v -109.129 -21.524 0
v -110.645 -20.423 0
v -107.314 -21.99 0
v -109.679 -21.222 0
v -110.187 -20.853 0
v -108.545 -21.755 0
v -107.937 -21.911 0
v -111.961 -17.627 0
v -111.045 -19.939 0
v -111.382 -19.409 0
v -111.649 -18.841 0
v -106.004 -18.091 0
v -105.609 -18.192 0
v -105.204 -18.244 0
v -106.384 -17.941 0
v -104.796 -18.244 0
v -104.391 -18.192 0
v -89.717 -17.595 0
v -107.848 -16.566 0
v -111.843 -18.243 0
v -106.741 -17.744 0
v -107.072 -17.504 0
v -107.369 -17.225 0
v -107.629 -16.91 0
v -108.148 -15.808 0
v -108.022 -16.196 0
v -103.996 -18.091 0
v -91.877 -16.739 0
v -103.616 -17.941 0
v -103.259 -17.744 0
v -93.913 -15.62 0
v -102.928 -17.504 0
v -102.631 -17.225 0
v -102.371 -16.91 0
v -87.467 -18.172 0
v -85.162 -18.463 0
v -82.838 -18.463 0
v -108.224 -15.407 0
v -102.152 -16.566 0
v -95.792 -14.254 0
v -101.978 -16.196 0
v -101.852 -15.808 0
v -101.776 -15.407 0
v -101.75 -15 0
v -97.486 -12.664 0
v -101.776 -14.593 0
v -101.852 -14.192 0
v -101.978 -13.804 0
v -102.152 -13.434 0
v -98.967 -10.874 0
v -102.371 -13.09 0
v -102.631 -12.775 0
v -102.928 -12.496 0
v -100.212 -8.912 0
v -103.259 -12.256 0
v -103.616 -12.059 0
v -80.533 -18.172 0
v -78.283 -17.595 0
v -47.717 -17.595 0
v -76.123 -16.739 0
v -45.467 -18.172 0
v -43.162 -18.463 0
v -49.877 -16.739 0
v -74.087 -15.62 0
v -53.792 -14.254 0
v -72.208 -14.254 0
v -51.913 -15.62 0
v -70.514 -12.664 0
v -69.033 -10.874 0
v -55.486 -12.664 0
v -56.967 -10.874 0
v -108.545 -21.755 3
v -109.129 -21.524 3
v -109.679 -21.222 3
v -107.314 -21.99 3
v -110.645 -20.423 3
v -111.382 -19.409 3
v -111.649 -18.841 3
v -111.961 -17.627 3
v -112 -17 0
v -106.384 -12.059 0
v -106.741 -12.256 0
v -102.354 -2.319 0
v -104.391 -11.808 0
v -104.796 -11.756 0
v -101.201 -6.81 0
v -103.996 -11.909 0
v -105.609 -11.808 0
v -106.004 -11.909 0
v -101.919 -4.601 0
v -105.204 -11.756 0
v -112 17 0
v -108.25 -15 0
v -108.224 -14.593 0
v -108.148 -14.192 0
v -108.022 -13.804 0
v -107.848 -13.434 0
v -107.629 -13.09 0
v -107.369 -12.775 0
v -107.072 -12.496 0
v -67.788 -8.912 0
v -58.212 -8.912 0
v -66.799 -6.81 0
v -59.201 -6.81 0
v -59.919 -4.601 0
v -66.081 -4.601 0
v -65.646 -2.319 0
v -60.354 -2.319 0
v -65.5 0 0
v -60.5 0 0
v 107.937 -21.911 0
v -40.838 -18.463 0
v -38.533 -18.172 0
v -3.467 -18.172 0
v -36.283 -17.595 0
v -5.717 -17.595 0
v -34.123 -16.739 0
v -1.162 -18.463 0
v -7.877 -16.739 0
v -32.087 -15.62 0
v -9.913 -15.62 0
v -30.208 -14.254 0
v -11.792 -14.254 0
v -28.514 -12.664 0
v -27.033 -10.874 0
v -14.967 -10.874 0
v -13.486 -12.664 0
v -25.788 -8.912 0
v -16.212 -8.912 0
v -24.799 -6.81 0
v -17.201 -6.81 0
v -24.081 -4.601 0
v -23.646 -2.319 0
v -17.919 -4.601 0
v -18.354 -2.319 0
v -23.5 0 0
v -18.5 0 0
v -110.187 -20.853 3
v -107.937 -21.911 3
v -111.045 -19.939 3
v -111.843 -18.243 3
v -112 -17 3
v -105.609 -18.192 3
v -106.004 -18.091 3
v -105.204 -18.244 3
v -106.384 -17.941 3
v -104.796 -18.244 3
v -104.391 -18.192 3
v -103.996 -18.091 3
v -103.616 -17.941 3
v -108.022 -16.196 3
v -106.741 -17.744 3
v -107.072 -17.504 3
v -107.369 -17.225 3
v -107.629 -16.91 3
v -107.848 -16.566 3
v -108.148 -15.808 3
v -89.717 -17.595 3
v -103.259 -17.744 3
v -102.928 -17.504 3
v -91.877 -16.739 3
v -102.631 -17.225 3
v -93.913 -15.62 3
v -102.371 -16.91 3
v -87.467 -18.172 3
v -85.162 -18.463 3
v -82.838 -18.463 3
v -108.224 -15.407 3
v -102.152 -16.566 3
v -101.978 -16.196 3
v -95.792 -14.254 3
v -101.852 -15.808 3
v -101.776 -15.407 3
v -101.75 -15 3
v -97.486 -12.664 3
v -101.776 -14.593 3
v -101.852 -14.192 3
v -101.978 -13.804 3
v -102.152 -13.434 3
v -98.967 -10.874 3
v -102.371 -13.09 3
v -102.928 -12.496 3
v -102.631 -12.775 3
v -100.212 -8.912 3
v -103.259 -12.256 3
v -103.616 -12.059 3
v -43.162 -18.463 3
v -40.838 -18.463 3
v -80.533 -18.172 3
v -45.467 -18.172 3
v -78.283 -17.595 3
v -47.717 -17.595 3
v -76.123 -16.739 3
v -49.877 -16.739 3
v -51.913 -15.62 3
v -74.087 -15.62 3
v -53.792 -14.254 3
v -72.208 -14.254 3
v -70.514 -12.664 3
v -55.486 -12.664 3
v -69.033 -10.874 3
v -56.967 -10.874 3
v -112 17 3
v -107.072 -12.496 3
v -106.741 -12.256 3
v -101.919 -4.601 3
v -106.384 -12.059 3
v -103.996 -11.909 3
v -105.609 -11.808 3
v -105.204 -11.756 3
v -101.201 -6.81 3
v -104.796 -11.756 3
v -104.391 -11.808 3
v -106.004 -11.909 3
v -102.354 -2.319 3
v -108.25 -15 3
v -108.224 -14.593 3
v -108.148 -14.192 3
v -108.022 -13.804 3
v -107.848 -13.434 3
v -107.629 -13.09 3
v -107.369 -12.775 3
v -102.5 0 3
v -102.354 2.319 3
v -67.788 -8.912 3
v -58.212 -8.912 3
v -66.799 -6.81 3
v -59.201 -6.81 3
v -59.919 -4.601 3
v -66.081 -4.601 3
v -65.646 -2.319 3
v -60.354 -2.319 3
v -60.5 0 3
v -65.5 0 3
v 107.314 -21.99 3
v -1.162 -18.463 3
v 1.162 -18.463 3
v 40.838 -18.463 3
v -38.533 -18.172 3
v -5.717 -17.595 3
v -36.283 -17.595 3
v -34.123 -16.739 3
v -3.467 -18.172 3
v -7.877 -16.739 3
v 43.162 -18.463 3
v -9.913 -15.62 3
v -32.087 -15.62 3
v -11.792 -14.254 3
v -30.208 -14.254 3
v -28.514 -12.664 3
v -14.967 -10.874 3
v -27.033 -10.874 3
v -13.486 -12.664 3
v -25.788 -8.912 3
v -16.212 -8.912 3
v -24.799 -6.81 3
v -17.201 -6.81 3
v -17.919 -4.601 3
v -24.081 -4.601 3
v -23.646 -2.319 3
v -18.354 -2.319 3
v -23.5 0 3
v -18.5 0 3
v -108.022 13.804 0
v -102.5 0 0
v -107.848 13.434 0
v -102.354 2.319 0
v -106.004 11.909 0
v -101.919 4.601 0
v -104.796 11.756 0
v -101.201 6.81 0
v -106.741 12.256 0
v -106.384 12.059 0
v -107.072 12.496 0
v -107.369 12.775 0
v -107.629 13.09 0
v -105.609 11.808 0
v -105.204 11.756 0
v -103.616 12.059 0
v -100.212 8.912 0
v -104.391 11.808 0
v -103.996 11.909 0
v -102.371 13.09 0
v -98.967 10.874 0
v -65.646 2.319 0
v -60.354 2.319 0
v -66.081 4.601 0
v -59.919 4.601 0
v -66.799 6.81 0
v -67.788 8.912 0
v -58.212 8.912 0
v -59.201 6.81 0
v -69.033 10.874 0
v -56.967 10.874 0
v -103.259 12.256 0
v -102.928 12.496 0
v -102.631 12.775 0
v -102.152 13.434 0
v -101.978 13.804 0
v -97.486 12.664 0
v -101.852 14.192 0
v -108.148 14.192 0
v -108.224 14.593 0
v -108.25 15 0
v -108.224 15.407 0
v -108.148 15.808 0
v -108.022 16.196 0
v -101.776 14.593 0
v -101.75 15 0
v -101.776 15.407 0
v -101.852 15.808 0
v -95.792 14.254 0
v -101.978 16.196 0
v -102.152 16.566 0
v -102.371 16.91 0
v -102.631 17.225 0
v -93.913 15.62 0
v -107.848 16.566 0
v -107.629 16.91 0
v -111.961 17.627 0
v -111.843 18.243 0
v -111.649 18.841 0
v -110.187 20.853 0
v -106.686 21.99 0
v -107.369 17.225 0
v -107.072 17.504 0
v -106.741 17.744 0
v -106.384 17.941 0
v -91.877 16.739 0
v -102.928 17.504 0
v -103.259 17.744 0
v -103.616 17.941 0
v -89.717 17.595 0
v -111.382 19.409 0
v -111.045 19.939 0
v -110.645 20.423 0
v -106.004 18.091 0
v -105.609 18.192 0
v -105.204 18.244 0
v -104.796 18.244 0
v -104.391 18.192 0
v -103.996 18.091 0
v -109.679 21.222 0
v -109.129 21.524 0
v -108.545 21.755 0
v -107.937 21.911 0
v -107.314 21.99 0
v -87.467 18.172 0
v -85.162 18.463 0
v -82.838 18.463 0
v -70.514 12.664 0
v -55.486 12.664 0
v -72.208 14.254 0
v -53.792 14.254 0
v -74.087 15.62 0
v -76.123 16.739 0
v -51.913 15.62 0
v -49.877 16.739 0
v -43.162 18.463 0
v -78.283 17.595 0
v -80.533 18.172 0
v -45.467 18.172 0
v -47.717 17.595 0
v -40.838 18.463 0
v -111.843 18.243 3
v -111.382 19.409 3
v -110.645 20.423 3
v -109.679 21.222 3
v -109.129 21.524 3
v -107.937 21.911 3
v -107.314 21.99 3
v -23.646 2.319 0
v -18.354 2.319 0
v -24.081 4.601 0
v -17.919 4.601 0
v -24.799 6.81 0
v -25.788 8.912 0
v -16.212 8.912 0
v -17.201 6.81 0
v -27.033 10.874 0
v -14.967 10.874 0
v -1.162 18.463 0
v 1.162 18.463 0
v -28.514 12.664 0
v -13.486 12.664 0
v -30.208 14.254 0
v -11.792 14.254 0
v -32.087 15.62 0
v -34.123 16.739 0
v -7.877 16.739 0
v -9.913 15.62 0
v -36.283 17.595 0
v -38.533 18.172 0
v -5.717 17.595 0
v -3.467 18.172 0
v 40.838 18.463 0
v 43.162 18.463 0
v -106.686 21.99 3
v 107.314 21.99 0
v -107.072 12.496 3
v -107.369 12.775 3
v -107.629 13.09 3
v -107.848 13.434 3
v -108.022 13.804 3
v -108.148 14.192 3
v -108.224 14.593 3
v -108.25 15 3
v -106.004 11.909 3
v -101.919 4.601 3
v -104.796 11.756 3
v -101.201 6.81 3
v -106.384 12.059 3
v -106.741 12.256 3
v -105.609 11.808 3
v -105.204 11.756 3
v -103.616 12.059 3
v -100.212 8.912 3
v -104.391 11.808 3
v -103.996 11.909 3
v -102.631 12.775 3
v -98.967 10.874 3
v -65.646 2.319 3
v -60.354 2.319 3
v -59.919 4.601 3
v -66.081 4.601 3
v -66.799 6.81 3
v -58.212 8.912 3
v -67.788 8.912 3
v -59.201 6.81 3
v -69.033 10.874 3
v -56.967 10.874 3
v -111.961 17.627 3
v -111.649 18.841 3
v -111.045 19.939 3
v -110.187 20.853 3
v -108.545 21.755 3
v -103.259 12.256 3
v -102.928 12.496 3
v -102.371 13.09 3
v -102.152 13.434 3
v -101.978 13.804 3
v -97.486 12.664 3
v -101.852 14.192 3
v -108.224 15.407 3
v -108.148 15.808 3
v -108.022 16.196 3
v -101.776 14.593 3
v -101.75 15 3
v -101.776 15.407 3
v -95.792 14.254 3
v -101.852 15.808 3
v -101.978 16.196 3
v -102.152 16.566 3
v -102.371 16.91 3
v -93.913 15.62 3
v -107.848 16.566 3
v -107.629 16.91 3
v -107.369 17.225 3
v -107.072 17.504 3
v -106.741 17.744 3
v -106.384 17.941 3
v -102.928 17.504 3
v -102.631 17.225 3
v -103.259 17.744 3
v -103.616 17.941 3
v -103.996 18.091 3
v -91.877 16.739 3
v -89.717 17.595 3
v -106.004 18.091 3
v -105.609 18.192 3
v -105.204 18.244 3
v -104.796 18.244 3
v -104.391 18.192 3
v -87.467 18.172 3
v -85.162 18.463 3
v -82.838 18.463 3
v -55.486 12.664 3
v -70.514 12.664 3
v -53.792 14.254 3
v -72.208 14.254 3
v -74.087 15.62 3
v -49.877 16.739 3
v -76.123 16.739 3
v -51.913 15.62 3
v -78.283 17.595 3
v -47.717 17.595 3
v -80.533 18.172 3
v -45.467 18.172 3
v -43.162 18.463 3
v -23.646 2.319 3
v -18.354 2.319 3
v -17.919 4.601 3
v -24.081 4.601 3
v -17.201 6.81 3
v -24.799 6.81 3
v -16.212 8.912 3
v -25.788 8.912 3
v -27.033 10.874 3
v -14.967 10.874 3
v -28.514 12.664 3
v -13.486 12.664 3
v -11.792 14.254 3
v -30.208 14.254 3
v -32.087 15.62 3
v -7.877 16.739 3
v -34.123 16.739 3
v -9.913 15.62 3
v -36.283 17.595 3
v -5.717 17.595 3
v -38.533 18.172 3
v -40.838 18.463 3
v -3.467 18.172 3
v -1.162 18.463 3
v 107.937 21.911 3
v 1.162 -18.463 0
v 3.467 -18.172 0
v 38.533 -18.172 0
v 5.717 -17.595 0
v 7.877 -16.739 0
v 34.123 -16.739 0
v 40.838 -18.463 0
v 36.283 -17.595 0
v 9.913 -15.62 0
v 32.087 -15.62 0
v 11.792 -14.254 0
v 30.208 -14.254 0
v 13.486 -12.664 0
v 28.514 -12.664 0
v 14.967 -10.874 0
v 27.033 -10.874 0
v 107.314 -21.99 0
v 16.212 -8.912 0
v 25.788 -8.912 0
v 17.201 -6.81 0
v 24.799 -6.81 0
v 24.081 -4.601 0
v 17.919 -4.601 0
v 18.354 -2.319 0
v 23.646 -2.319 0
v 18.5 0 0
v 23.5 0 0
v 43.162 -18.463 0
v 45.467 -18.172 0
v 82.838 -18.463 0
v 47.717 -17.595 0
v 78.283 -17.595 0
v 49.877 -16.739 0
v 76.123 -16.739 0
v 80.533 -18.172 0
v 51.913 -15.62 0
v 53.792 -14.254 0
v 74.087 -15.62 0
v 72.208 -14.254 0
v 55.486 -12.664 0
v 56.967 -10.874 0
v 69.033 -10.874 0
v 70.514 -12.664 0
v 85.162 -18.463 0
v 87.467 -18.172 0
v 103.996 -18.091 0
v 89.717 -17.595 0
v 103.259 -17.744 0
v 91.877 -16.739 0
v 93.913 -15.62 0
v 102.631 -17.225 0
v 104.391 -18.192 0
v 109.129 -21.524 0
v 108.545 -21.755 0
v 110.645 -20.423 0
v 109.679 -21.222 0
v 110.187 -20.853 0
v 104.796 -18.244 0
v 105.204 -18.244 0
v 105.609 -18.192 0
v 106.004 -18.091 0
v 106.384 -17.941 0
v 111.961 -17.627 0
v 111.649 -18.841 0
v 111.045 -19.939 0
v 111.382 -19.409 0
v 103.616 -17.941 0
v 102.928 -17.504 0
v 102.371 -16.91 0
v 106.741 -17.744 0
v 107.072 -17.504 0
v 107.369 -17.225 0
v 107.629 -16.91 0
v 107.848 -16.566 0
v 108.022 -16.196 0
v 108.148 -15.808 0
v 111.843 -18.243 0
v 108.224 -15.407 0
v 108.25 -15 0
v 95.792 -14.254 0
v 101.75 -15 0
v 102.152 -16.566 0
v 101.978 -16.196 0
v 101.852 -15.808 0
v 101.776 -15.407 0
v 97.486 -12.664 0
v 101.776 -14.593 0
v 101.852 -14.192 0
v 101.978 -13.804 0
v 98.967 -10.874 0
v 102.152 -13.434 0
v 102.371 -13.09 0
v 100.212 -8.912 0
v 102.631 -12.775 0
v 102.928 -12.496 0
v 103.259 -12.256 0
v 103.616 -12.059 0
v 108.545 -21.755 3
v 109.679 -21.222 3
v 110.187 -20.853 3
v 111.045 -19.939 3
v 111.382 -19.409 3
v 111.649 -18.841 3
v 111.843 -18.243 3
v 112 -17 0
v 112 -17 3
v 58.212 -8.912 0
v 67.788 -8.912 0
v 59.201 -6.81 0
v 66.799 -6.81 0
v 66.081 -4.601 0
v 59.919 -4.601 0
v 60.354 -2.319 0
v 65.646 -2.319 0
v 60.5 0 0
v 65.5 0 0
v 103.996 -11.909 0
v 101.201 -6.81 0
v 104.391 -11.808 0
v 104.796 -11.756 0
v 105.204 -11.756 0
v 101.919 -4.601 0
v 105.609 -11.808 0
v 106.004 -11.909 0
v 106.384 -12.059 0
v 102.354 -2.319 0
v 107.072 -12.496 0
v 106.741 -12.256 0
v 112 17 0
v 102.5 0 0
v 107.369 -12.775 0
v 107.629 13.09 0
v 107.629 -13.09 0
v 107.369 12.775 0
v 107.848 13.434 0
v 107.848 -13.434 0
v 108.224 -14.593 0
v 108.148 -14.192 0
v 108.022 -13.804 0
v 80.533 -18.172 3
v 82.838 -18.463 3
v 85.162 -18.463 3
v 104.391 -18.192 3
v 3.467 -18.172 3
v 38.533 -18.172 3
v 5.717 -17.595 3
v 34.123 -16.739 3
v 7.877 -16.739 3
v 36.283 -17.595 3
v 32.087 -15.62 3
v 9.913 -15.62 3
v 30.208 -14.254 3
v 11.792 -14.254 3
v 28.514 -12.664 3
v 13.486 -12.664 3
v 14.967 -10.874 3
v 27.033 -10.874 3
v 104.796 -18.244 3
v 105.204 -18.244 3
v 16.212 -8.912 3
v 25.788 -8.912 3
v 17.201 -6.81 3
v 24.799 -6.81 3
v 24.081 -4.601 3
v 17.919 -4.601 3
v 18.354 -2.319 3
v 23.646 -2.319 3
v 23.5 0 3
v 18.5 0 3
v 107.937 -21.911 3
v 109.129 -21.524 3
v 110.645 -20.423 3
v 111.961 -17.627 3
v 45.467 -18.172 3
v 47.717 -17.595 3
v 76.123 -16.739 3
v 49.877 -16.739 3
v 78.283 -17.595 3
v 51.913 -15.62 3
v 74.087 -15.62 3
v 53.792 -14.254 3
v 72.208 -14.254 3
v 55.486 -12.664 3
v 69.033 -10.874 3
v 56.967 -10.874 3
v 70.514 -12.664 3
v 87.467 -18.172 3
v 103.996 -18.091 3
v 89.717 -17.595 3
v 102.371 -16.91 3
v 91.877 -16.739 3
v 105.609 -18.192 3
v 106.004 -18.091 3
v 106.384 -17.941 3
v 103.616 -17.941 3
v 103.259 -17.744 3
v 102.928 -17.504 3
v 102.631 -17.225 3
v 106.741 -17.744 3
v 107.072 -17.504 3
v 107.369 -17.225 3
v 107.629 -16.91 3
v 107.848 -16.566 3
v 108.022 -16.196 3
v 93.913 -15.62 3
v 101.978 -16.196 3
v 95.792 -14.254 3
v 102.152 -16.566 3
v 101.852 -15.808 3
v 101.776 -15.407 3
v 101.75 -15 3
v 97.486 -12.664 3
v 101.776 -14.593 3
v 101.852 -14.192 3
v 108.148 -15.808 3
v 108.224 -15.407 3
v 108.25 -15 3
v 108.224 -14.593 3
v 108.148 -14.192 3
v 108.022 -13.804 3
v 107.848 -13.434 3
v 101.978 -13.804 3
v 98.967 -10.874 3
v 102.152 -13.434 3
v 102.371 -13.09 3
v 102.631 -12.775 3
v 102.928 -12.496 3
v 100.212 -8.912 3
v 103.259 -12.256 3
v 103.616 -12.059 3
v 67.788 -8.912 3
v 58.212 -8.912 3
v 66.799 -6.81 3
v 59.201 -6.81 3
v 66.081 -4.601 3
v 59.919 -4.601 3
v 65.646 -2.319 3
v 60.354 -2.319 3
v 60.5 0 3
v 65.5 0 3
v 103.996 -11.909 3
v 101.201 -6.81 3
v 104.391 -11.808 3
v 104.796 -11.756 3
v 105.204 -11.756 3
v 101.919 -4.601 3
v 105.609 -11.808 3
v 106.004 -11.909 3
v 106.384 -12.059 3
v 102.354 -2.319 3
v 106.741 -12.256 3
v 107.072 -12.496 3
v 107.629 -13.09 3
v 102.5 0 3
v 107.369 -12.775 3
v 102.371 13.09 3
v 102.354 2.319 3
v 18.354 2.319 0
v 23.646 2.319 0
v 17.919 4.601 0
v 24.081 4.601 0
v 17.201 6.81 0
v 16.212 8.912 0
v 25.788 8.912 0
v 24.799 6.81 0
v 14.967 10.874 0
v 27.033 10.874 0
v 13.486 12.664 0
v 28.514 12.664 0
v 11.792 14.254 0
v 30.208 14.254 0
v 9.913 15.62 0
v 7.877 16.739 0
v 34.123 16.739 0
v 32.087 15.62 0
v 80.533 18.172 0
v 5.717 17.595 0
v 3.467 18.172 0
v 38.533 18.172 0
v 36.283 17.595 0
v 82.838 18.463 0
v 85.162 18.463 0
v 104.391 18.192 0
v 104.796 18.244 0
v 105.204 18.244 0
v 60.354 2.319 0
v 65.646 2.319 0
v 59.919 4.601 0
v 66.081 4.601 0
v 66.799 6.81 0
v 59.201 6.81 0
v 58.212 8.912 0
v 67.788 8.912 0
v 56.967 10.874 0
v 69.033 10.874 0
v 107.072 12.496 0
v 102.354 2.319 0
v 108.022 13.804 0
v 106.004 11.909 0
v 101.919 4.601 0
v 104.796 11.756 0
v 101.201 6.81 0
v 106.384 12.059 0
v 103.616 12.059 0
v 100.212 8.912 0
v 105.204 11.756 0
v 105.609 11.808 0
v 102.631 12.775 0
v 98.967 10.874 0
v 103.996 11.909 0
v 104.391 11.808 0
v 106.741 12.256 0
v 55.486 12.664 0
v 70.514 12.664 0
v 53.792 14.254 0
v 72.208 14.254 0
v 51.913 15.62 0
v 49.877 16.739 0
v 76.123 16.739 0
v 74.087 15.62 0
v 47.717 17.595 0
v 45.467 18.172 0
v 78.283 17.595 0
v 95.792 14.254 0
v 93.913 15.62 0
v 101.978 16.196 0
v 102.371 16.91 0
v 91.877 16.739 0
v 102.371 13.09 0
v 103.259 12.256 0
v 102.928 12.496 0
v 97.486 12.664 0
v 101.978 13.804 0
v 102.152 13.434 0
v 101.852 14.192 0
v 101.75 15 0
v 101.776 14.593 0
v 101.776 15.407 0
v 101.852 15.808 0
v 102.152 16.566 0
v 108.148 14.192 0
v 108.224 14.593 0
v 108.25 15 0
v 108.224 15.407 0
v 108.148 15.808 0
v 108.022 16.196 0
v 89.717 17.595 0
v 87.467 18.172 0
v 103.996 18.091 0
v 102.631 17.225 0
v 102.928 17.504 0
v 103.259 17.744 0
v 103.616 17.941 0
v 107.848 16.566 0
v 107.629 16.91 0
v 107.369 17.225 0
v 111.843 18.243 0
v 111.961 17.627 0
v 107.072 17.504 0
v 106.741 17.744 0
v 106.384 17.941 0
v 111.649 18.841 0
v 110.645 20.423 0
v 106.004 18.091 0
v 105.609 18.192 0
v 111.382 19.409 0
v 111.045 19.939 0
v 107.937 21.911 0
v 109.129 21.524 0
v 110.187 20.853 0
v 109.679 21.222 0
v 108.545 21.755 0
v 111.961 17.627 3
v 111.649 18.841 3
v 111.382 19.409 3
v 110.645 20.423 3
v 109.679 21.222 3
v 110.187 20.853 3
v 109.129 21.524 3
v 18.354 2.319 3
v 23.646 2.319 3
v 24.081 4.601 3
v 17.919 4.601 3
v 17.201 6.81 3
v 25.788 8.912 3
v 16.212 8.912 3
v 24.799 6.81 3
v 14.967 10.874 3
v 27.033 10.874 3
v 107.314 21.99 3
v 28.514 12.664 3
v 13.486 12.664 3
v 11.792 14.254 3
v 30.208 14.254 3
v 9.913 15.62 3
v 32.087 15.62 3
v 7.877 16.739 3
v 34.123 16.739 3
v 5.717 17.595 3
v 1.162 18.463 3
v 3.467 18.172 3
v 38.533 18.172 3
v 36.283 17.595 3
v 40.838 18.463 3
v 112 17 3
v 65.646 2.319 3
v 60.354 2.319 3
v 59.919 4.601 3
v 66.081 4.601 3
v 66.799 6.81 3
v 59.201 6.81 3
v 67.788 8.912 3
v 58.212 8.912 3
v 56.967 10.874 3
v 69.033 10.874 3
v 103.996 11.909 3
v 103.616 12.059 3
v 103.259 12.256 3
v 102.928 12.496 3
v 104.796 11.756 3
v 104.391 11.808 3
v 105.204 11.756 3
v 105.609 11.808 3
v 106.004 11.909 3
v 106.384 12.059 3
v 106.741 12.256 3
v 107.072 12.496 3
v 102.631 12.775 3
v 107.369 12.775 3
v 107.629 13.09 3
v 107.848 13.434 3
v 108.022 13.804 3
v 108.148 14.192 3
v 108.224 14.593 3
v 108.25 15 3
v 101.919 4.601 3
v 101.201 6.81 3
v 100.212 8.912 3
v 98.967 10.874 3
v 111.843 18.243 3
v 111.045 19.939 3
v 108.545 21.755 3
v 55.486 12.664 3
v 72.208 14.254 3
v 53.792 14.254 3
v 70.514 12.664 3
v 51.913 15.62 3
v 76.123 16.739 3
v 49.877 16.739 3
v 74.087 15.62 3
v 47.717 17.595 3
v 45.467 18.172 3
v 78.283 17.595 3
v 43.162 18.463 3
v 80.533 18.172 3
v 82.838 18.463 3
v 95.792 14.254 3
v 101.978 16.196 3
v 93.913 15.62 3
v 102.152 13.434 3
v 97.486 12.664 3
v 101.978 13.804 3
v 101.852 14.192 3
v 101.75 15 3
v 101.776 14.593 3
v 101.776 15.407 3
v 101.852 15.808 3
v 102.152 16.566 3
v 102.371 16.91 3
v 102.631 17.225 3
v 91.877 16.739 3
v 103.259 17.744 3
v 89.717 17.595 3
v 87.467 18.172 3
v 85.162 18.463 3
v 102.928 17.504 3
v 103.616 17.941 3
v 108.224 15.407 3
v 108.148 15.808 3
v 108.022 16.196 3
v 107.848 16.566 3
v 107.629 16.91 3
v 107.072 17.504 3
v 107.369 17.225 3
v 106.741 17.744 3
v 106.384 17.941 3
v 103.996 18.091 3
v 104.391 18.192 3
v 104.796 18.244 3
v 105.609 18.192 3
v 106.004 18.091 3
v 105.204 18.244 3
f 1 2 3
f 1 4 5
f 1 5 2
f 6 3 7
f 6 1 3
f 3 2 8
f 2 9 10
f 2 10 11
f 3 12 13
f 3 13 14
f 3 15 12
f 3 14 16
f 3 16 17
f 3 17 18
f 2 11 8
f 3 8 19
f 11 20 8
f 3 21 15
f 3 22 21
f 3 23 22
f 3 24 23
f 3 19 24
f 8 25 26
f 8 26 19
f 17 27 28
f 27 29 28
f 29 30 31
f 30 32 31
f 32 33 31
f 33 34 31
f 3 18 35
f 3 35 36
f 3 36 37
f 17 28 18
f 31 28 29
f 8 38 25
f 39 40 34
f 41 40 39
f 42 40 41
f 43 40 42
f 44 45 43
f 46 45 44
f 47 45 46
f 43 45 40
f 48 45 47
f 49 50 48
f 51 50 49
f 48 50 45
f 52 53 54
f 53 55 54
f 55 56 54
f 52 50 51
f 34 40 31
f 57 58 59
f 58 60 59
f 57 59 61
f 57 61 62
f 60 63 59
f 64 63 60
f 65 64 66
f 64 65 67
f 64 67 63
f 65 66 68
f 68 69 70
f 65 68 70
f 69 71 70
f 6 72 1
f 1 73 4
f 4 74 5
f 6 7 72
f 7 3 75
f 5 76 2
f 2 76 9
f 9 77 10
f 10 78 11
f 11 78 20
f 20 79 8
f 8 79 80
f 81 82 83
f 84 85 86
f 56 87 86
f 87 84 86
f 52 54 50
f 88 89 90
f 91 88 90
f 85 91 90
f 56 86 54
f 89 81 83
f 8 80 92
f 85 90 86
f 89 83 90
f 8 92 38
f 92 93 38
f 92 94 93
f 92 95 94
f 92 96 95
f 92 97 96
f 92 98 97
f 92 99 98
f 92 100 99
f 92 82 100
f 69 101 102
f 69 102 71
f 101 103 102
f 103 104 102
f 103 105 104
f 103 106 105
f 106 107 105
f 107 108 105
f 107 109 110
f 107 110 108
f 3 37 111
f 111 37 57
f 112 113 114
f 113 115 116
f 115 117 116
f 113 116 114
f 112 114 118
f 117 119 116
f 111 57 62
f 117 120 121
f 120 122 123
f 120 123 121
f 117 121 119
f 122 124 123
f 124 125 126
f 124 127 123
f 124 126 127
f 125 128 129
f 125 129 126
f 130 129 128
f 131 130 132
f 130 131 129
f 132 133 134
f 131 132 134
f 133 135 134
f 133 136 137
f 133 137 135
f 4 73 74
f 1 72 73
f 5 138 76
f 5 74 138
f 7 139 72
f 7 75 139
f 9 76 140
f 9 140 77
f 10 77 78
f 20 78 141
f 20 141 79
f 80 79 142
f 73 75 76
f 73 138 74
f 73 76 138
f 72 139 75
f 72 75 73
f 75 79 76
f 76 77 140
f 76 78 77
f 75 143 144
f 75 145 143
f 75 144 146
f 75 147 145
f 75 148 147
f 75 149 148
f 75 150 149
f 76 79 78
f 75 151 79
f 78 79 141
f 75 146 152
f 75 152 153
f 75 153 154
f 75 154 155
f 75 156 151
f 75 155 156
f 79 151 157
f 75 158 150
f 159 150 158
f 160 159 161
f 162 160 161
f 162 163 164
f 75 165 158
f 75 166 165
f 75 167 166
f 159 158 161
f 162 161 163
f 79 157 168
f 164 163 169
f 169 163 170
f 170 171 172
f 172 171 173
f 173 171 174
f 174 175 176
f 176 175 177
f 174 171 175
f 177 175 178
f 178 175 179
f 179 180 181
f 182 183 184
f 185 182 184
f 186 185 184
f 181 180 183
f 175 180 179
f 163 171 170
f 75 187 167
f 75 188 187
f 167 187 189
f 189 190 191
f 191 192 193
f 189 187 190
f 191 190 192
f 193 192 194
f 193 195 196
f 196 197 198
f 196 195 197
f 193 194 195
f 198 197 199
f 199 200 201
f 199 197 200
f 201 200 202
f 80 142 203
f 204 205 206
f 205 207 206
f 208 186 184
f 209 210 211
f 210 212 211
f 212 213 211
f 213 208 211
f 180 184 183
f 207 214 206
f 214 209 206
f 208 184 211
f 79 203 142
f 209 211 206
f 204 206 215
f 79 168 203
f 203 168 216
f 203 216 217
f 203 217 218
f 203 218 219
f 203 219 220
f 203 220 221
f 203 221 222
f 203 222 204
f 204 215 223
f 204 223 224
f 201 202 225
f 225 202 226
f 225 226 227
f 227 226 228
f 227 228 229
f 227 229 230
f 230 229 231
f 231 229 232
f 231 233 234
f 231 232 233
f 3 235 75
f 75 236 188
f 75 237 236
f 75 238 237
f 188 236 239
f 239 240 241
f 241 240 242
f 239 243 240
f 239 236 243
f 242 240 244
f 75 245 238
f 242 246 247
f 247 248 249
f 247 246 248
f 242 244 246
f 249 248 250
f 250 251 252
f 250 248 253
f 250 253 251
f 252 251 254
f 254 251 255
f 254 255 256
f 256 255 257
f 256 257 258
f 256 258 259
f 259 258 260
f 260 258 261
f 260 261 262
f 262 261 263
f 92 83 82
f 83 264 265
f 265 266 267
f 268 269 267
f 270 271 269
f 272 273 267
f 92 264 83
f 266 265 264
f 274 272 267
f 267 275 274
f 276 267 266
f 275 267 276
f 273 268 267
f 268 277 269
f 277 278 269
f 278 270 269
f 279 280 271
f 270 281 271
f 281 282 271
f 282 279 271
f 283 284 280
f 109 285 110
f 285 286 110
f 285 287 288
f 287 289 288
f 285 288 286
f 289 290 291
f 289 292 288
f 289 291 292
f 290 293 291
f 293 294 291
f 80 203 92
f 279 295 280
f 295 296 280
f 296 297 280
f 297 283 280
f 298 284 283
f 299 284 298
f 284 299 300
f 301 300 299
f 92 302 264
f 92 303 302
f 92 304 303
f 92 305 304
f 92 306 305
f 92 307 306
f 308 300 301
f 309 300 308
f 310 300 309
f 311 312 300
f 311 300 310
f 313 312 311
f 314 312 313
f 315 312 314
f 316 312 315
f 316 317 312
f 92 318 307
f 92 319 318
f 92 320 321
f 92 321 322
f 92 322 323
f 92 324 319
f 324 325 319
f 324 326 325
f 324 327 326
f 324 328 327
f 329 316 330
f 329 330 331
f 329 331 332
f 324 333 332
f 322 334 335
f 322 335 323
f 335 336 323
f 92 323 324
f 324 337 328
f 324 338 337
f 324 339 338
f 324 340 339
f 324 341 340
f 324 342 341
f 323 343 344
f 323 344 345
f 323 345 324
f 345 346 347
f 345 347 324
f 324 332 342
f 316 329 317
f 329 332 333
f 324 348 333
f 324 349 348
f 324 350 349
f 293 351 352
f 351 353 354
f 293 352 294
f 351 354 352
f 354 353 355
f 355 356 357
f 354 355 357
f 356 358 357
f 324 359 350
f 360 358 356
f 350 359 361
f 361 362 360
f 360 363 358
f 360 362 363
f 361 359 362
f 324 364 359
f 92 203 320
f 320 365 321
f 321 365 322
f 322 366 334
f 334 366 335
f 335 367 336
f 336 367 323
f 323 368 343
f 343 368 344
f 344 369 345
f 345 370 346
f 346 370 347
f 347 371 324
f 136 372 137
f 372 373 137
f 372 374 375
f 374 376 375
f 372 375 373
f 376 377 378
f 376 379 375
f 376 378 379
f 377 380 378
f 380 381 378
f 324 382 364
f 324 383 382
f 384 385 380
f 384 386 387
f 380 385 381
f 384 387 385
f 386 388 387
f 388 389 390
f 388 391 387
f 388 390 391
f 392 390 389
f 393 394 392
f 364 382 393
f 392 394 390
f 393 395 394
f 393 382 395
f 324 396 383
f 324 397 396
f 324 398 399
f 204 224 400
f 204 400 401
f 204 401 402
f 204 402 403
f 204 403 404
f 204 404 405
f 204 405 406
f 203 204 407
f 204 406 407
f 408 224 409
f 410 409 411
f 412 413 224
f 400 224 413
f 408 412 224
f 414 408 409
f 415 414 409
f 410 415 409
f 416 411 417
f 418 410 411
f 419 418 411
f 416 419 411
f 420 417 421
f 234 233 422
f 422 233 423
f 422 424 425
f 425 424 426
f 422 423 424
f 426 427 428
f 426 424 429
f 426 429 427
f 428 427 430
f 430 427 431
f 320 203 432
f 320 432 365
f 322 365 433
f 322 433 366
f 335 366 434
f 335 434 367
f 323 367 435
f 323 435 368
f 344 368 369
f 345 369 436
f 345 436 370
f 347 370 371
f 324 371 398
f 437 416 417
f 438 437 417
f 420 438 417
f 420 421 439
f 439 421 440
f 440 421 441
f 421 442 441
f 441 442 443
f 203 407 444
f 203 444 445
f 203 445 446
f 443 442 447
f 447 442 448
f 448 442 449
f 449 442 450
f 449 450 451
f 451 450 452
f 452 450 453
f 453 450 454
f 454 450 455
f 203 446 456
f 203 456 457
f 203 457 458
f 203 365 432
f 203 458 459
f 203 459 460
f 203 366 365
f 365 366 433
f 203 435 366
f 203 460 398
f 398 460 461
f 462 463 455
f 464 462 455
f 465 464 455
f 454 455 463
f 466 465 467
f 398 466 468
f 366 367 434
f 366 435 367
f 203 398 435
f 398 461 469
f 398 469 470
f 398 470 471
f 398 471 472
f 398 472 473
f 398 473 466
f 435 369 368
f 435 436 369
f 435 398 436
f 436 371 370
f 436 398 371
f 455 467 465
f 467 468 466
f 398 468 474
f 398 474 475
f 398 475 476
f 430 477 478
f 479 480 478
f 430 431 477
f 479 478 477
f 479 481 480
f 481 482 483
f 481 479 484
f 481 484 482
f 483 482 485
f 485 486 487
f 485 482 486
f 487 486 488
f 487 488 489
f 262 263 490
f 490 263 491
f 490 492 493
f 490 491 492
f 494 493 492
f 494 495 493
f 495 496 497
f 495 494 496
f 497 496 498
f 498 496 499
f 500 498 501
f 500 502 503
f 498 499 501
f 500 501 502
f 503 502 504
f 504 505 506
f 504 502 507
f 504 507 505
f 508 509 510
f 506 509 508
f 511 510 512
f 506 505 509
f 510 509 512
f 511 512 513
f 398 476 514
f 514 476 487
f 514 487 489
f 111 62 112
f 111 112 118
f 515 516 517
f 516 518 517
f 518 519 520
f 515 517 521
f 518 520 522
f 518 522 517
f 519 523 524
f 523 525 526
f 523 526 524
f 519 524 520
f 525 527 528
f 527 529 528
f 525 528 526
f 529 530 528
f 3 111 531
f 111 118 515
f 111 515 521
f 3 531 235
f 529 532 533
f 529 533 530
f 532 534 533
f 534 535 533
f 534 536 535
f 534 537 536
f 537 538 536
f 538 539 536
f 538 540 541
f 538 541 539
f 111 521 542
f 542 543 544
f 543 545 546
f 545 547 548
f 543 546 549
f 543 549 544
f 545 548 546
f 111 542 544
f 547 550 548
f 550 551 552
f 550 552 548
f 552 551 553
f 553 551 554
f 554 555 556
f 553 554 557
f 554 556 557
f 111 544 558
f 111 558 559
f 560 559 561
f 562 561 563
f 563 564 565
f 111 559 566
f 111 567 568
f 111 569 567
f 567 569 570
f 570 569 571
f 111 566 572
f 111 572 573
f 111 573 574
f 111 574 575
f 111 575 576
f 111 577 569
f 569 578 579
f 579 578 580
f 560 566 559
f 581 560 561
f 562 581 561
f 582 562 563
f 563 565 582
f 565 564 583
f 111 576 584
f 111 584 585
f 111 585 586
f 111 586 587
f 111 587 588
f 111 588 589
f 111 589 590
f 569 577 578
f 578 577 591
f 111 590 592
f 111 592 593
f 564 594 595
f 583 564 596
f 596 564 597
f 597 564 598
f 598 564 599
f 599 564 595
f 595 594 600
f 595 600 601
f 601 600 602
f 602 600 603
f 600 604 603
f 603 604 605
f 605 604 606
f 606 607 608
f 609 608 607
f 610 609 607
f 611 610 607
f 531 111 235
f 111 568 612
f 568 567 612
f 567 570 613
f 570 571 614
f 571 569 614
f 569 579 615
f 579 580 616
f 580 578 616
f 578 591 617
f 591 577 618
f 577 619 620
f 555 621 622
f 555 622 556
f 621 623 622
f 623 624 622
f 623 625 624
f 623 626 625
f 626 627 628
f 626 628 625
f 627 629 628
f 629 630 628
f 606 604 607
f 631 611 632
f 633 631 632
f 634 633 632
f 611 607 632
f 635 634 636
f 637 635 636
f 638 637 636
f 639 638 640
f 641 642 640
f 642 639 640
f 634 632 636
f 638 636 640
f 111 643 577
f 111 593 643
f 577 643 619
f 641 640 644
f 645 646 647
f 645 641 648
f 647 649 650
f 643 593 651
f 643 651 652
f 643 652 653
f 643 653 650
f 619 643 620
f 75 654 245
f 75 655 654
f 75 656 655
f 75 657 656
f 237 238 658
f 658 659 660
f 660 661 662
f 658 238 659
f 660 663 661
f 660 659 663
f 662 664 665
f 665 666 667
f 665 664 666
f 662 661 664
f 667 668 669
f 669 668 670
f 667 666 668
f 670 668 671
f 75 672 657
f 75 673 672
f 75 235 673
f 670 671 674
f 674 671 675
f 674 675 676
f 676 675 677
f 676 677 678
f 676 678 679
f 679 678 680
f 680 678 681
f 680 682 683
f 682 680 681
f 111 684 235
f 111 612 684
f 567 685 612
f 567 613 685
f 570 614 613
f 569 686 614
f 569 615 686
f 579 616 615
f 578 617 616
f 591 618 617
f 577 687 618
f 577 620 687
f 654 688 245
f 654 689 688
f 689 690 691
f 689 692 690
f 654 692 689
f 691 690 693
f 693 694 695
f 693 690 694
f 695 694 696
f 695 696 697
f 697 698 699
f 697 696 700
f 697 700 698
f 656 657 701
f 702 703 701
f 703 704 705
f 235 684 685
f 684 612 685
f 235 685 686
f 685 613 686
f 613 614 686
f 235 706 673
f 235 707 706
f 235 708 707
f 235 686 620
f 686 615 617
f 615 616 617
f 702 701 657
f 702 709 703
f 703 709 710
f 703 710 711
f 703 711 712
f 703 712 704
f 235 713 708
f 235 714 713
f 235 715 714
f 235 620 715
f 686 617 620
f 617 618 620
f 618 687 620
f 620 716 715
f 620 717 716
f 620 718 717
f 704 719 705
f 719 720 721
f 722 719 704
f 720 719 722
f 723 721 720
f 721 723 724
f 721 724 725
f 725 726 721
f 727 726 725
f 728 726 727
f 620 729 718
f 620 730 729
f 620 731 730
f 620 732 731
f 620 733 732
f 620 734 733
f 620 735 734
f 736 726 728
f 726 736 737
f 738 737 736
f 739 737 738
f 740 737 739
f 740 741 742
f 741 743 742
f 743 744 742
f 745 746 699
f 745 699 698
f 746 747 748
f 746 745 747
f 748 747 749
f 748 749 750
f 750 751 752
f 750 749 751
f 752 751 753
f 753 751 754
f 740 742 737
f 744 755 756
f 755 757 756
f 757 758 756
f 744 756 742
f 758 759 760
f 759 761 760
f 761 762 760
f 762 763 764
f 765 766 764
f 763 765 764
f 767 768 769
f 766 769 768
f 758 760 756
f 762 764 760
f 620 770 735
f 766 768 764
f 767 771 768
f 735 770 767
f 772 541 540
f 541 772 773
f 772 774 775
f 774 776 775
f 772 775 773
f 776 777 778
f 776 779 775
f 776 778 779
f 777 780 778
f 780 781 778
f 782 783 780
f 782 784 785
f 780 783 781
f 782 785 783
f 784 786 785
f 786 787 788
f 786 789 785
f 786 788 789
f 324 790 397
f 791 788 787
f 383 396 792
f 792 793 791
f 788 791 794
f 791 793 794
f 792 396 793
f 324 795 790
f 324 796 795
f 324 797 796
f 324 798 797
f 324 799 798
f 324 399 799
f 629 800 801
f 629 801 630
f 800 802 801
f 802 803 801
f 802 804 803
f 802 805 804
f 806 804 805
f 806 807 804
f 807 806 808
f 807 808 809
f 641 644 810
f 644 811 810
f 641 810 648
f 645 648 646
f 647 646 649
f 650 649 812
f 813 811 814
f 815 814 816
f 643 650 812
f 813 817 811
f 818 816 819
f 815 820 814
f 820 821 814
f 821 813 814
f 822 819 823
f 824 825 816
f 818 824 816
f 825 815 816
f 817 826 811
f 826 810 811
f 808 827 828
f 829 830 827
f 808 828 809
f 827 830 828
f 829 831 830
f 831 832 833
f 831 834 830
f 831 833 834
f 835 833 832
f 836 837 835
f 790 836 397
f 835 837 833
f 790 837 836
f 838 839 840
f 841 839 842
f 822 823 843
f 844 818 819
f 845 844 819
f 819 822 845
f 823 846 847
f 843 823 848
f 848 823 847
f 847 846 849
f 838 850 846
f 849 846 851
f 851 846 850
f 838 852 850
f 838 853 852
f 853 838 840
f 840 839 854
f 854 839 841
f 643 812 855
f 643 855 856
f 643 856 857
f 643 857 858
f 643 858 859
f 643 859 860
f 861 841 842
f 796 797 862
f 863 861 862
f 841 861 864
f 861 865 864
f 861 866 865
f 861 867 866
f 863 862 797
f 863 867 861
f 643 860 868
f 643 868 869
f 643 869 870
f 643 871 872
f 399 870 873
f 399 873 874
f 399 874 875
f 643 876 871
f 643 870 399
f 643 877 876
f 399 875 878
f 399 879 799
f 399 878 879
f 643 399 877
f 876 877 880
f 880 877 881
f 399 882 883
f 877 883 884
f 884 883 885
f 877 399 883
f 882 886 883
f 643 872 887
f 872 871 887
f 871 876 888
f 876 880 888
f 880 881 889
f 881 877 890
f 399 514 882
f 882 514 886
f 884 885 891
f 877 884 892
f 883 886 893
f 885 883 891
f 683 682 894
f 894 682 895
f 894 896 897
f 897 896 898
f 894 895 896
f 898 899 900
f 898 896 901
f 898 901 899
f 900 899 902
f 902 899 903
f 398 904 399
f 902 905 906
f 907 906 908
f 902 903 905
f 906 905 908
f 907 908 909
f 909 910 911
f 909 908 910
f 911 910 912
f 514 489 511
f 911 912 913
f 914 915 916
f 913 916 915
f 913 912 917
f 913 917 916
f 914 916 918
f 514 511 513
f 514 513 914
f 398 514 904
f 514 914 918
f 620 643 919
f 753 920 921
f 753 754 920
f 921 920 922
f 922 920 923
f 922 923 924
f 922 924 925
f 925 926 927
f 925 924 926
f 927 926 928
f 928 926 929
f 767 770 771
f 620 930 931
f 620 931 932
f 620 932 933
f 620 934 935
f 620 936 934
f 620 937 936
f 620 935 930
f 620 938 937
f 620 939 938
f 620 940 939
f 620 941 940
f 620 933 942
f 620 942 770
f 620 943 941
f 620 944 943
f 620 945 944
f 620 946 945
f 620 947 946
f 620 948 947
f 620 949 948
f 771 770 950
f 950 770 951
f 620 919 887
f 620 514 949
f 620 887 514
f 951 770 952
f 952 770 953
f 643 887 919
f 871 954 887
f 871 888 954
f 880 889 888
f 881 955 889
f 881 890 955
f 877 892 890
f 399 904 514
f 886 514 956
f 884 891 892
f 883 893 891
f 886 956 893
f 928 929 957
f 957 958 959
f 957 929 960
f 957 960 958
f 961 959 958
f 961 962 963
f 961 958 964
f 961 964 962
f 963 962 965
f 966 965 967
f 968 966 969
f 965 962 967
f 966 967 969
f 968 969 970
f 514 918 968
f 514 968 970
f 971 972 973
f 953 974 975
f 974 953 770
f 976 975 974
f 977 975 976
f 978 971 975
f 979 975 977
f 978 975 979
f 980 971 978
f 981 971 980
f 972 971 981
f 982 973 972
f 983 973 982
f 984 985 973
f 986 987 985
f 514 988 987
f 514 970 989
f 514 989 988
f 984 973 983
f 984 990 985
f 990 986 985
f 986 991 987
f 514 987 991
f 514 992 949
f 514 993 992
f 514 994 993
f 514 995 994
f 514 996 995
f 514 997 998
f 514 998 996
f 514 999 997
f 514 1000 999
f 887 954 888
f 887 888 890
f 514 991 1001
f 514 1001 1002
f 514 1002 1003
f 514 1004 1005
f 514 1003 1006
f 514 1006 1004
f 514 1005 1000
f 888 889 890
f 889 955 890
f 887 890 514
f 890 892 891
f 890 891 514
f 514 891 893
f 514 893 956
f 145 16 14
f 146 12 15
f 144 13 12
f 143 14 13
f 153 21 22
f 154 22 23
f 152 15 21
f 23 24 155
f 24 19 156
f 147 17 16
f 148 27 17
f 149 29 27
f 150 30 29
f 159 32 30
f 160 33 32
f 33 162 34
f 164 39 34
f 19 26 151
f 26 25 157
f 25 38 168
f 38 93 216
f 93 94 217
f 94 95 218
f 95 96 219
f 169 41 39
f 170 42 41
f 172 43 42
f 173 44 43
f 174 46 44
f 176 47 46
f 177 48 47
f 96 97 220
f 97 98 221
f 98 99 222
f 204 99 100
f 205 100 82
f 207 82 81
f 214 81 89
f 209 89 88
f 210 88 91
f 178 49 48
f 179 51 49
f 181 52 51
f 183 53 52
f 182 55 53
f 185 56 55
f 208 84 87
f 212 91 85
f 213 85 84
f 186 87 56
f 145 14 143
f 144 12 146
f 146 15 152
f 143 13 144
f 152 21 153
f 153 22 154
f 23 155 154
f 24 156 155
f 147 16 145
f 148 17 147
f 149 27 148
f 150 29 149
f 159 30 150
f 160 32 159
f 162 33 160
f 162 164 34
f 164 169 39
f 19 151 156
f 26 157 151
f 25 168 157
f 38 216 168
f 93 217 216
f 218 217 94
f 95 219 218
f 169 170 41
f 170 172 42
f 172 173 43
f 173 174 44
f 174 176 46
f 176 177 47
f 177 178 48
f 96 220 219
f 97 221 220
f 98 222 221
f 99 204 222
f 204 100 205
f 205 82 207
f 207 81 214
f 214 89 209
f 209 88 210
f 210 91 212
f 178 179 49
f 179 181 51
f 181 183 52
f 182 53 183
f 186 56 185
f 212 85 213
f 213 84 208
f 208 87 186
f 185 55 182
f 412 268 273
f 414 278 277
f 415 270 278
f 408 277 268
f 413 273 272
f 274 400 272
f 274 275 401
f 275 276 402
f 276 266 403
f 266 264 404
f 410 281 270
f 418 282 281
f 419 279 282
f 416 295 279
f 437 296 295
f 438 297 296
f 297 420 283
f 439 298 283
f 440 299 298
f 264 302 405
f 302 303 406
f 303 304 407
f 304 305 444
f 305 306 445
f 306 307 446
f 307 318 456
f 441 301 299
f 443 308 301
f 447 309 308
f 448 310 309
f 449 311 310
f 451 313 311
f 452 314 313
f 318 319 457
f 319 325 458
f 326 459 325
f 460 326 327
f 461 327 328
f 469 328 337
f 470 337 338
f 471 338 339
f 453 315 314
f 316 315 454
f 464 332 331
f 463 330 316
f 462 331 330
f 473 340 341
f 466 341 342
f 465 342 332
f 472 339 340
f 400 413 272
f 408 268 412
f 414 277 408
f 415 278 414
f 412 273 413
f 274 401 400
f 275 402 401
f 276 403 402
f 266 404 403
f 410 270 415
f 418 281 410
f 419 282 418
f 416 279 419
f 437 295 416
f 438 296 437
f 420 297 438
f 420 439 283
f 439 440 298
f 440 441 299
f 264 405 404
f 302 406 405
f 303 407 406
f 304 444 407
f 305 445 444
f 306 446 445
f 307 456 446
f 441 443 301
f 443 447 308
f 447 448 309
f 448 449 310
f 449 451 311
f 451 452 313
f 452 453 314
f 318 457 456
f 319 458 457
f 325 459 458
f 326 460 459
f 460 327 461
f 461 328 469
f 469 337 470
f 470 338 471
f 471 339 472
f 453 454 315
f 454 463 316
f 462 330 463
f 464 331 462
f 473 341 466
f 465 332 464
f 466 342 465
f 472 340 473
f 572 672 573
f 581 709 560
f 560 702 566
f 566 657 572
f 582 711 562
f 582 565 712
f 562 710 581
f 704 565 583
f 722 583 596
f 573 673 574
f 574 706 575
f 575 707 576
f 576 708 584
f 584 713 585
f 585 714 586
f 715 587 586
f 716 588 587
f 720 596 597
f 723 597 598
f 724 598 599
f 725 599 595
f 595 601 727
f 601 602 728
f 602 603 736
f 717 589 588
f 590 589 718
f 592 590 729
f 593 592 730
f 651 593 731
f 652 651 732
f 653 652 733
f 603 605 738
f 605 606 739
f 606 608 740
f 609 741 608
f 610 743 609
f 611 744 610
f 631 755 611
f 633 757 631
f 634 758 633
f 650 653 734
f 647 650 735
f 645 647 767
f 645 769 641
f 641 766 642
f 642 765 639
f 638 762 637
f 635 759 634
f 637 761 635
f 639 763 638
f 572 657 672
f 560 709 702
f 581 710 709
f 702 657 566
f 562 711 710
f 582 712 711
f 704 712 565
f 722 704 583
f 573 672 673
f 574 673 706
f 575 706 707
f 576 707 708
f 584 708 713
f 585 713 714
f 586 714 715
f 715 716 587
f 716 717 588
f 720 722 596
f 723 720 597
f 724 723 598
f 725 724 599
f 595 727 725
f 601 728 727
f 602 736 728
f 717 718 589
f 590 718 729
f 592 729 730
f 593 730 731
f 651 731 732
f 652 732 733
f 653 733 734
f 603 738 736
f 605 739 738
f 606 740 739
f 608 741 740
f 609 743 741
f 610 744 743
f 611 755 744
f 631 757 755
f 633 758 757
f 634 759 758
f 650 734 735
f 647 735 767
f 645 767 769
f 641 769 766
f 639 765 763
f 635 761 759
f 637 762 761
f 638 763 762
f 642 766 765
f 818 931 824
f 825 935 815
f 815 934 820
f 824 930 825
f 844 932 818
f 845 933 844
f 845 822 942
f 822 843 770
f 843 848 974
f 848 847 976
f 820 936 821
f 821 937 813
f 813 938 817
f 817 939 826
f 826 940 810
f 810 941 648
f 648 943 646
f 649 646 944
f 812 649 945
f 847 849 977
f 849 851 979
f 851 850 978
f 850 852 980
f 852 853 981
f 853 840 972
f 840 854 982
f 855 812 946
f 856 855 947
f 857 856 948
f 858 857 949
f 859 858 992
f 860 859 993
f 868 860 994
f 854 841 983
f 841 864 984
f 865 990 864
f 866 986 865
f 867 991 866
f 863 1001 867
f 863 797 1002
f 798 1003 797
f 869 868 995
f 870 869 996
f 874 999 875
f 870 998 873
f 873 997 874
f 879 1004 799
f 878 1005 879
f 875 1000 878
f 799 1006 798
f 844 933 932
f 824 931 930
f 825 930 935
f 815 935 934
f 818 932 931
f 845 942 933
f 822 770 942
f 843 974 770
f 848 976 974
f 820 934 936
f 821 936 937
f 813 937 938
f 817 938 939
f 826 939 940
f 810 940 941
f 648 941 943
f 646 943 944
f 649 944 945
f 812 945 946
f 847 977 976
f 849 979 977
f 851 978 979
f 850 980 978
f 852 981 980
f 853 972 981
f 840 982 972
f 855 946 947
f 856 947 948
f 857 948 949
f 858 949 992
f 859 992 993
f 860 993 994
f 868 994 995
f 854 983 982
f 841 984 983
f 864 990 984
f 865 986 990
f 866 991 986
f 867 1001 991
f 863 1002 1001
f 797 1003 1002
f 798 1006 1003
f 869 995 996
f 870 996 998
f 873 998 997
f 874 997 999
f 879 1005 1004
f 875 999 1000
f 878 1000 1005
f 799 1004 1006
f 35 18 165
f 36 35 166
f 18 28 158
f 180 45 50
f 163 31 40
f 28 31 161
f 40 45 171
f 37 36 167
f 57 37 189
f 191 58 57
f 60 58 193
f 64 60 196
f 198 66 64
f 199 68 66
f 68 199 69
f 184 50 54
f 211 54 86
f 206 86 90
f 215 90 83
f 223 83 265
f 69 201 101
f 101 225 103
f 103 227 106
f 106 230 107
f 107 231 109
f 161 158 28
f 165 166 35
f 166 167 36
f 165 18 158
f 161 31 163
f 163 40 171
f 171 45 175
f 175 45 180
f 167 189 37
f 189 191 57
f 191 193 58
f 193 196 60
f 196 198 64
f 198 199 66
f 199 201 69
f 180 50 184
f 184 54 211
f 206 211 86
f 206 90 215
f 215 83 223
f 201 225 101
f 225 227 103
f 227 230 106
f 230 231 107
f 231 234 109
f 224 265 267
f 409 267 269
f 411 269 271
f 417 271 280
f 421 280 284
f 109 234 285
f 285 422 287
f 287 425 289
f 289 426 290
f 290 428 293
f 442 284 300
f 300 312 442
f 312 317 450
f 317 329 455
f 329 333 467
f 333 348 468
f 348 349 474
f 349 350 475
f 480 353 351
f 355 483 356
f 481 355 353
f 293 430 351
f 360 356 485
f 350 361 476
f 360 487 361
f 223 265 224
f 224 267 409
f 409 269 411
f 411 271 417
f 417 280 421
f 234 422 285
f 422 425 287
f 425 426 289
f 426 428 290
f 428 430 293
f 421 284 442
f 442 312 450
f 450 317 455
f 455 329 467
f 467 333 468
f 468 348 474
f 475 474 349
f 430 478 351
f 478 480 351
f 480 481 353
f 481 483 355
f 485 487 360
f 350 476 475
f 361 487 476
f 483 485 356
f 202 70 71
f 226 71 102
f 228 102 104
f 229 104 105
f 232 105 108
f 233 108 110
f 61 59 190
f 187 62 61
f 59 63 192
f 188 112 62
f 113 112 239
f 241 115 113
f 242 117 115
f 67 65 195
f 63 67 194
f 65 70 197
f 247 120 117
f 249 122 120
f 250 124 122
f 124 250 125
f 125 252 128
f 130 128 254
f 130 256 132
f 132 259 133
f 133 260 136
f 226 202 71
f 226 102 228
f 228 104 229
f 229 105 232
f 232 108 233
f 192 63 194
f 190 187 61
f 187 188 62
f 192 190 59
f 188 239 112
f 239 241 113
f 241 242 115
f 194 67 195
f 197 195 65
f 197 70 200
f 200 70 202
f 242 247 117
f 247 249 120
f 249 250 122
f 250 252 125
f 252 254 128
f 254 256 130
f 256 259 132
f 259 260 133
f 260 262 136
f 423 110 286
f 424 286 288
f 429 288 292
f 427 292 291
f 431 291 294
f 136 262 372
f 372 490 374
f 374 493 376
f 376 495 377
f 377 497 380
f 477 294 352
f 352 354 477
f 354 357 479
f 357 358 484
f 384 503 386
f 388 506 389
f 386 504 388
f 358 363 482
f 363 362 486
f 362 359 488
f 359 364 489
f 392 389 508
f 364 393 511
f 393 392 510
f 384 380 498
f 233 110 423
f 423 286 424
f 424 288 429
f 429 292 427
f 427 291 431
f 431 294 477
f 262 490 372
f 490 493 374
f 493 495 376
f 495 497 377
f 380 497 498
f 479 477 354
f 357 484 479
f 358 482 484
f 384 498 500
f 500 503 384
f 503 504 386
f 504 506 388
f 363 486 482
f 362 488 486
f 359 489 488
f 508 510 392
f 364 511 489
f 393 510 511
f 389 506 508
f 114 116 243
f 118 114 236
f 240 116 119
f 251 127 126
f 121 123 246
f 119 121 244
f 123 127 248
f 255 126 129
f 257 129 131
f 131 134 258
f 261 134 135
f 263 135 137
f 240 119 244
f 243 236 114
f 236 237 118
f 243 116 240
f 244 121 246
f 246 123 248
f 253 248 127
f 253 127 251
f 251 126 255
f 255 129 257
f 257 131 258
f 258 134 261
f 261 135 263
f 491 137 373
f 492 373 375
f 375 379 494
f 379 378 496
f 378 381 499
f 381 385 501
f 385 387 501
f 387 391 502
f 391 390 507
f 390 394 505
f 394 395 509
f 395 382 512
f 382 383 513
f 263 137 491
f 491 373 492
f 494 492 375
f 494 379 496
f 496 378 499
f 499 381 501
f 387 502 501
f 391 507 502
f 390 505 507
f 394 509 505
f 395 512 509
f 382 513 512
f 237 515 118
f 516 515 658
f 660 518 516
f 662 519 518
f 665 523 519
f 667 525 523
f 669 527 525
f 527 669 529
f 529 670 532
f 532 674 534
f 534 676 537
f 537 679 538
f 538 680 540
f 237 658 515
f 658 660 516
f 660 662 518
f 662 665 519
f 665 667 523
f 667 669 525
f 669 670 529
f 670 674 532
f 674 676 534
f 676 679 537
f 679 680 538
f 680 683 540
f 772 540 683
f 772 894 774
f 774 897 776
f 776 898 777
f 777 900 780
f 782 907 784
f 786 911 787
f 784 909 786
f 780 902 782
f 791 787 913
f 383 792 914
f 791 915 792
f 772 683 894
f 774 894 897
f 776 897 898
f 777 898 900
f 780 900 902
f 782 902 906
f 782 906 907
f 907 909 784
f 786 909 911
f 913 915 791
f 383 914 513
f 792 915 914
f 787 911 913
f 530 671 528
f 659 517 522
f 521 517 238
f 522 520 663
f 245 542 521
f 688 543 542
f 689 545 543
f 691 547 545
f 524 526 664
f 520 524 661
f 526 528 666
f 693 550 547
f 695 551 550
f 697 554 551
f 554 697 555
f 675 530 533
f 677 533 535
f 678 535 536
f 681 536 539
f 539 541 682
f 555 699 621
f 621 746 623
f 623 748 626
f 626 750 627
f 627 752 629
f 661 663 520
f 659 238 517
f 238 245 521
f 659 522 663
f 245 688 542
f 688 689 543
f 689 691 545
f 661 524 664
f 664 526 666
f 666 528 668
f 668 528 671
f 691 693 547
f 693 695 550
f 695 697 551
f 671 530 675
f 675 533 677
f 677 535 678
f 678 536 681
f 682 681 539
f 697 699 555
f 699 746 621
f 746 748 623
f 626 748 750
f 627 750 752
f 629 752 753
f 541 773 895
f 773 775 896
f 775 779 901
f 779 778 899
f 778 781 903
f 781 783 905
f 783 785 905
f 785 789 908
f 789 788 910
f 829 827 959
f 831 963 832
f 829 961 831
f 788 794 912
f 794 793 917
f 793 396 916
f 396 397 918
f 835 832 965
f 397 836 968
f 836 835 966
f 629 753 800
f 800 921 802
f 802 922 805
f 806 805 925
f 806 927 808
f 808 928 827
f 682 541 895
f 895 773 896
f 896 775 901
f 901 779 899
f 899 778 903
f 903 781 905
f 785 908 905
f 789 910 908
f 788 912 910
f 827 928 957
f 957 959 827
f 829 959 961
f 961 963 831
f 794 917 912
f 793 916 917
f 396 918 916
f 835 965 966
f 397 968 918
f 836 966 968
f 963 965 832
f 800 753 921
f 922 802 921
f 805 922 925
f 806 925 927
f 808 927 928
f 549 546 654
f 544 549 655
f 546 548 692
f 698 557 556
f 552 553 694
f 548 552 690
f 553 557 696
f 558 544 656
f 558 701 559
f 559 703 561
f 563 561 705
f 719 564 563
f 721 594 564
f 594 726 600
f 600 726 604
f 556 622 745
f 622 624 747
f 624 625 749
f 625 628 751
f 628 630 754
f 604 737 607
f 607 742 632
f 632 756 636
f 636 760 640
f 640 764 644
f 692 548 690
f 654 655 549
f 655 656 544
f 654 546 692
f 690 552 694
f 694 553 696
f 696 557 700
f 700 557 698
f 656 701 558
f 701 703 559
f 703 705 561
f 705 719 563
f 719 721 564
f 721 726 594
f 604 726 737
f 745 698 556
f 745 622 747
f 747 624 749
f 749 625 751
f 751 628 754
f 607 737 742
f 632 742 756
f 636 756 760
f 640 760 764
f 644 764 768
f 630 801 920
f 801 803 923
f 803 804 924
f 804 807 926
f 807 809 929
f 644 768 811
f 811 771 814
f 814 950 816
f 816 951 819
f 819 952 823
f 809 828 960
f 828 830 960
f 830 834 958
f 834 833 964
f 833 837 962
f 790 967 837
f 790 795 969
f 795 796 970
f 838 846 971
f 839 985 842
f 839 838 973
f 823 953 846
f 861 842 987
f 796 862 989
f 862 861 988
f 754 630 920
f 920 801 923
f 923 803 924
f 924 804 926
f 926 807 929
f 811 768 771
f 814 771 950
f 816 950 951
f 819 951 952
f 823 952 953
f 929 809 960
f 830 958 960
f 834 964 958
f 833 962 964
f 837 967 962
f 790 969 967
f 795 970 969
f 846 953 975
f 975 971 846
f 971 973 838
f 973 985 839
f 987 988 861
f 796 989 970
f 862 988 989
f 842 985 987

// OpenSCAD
$fn = 50;

difference() {
	union() {
		hull() {
			translate(v = [-107.0, 17.0, 0]) {
				cylinder(h = 3, r = 5);
			}
			translate(v = [107.0, 17.0, 0]) {
				cylinder(h = 3, r = 5);
			}
			translate(v = [-107.0, -17.0, 0]) {
				cylinder(h = 3, r = 5);
			}
			translate(v = [107.0, -17.0, 0]) {
				cylinder(h = 3, r = 5);
			}
		}
	}
	union() {
		translate(v = [-105.0, -15.0, -100.0]) {
			cylinder(h = 200, r = 3.25);
		}
		translate(v = [-105.0, 15.0, -100.0]) {
			cylinder(h = 200, r = 3.25);
		}
		translate(v = [105.0, -15.0, -100.0]) {
			cylinder(h = 200, r = 3.25);
		}
		translate(v = [105.0, 15.0, -100.0]) {
			cylinder(h = 200, r = 3.25);
		}
		translate(v = [-105.0, -15.0, -100.0]) {
			cylinder(h = 200, r = 1.8);
		}
		translate(v = [-105.0, 15.0, -100.0]) {
			cylinder(h = 200, r = 1.8);
		}
		translate(v = [105.0, -15.0, -100.0]) {
			cylinder(h = 200, r = 1.8);
		}
		translate(v = [105.0, 15.0, -100.0]) {
			cylinder(h = 200, r = 1.8);
		}
		translate(v = [-84.0, 0, 0.0]) {
			cylinder(h = 3, r = 18.5);
		}
		translate(v = [-42.0, 0, 0.0]) {
			cylinder(h = 3, r = 18.5);
		}
		cylinder(h = 3, r = 18.5);
		translate(v = [42.0, 0, 0.0]) {
			cylinder(h = 3, r = 18.5);
		}
		translate(v = [84.0, 0, 0.0]) {
			cylinder(h = 3, r = 18.5);
		}
	}
}
